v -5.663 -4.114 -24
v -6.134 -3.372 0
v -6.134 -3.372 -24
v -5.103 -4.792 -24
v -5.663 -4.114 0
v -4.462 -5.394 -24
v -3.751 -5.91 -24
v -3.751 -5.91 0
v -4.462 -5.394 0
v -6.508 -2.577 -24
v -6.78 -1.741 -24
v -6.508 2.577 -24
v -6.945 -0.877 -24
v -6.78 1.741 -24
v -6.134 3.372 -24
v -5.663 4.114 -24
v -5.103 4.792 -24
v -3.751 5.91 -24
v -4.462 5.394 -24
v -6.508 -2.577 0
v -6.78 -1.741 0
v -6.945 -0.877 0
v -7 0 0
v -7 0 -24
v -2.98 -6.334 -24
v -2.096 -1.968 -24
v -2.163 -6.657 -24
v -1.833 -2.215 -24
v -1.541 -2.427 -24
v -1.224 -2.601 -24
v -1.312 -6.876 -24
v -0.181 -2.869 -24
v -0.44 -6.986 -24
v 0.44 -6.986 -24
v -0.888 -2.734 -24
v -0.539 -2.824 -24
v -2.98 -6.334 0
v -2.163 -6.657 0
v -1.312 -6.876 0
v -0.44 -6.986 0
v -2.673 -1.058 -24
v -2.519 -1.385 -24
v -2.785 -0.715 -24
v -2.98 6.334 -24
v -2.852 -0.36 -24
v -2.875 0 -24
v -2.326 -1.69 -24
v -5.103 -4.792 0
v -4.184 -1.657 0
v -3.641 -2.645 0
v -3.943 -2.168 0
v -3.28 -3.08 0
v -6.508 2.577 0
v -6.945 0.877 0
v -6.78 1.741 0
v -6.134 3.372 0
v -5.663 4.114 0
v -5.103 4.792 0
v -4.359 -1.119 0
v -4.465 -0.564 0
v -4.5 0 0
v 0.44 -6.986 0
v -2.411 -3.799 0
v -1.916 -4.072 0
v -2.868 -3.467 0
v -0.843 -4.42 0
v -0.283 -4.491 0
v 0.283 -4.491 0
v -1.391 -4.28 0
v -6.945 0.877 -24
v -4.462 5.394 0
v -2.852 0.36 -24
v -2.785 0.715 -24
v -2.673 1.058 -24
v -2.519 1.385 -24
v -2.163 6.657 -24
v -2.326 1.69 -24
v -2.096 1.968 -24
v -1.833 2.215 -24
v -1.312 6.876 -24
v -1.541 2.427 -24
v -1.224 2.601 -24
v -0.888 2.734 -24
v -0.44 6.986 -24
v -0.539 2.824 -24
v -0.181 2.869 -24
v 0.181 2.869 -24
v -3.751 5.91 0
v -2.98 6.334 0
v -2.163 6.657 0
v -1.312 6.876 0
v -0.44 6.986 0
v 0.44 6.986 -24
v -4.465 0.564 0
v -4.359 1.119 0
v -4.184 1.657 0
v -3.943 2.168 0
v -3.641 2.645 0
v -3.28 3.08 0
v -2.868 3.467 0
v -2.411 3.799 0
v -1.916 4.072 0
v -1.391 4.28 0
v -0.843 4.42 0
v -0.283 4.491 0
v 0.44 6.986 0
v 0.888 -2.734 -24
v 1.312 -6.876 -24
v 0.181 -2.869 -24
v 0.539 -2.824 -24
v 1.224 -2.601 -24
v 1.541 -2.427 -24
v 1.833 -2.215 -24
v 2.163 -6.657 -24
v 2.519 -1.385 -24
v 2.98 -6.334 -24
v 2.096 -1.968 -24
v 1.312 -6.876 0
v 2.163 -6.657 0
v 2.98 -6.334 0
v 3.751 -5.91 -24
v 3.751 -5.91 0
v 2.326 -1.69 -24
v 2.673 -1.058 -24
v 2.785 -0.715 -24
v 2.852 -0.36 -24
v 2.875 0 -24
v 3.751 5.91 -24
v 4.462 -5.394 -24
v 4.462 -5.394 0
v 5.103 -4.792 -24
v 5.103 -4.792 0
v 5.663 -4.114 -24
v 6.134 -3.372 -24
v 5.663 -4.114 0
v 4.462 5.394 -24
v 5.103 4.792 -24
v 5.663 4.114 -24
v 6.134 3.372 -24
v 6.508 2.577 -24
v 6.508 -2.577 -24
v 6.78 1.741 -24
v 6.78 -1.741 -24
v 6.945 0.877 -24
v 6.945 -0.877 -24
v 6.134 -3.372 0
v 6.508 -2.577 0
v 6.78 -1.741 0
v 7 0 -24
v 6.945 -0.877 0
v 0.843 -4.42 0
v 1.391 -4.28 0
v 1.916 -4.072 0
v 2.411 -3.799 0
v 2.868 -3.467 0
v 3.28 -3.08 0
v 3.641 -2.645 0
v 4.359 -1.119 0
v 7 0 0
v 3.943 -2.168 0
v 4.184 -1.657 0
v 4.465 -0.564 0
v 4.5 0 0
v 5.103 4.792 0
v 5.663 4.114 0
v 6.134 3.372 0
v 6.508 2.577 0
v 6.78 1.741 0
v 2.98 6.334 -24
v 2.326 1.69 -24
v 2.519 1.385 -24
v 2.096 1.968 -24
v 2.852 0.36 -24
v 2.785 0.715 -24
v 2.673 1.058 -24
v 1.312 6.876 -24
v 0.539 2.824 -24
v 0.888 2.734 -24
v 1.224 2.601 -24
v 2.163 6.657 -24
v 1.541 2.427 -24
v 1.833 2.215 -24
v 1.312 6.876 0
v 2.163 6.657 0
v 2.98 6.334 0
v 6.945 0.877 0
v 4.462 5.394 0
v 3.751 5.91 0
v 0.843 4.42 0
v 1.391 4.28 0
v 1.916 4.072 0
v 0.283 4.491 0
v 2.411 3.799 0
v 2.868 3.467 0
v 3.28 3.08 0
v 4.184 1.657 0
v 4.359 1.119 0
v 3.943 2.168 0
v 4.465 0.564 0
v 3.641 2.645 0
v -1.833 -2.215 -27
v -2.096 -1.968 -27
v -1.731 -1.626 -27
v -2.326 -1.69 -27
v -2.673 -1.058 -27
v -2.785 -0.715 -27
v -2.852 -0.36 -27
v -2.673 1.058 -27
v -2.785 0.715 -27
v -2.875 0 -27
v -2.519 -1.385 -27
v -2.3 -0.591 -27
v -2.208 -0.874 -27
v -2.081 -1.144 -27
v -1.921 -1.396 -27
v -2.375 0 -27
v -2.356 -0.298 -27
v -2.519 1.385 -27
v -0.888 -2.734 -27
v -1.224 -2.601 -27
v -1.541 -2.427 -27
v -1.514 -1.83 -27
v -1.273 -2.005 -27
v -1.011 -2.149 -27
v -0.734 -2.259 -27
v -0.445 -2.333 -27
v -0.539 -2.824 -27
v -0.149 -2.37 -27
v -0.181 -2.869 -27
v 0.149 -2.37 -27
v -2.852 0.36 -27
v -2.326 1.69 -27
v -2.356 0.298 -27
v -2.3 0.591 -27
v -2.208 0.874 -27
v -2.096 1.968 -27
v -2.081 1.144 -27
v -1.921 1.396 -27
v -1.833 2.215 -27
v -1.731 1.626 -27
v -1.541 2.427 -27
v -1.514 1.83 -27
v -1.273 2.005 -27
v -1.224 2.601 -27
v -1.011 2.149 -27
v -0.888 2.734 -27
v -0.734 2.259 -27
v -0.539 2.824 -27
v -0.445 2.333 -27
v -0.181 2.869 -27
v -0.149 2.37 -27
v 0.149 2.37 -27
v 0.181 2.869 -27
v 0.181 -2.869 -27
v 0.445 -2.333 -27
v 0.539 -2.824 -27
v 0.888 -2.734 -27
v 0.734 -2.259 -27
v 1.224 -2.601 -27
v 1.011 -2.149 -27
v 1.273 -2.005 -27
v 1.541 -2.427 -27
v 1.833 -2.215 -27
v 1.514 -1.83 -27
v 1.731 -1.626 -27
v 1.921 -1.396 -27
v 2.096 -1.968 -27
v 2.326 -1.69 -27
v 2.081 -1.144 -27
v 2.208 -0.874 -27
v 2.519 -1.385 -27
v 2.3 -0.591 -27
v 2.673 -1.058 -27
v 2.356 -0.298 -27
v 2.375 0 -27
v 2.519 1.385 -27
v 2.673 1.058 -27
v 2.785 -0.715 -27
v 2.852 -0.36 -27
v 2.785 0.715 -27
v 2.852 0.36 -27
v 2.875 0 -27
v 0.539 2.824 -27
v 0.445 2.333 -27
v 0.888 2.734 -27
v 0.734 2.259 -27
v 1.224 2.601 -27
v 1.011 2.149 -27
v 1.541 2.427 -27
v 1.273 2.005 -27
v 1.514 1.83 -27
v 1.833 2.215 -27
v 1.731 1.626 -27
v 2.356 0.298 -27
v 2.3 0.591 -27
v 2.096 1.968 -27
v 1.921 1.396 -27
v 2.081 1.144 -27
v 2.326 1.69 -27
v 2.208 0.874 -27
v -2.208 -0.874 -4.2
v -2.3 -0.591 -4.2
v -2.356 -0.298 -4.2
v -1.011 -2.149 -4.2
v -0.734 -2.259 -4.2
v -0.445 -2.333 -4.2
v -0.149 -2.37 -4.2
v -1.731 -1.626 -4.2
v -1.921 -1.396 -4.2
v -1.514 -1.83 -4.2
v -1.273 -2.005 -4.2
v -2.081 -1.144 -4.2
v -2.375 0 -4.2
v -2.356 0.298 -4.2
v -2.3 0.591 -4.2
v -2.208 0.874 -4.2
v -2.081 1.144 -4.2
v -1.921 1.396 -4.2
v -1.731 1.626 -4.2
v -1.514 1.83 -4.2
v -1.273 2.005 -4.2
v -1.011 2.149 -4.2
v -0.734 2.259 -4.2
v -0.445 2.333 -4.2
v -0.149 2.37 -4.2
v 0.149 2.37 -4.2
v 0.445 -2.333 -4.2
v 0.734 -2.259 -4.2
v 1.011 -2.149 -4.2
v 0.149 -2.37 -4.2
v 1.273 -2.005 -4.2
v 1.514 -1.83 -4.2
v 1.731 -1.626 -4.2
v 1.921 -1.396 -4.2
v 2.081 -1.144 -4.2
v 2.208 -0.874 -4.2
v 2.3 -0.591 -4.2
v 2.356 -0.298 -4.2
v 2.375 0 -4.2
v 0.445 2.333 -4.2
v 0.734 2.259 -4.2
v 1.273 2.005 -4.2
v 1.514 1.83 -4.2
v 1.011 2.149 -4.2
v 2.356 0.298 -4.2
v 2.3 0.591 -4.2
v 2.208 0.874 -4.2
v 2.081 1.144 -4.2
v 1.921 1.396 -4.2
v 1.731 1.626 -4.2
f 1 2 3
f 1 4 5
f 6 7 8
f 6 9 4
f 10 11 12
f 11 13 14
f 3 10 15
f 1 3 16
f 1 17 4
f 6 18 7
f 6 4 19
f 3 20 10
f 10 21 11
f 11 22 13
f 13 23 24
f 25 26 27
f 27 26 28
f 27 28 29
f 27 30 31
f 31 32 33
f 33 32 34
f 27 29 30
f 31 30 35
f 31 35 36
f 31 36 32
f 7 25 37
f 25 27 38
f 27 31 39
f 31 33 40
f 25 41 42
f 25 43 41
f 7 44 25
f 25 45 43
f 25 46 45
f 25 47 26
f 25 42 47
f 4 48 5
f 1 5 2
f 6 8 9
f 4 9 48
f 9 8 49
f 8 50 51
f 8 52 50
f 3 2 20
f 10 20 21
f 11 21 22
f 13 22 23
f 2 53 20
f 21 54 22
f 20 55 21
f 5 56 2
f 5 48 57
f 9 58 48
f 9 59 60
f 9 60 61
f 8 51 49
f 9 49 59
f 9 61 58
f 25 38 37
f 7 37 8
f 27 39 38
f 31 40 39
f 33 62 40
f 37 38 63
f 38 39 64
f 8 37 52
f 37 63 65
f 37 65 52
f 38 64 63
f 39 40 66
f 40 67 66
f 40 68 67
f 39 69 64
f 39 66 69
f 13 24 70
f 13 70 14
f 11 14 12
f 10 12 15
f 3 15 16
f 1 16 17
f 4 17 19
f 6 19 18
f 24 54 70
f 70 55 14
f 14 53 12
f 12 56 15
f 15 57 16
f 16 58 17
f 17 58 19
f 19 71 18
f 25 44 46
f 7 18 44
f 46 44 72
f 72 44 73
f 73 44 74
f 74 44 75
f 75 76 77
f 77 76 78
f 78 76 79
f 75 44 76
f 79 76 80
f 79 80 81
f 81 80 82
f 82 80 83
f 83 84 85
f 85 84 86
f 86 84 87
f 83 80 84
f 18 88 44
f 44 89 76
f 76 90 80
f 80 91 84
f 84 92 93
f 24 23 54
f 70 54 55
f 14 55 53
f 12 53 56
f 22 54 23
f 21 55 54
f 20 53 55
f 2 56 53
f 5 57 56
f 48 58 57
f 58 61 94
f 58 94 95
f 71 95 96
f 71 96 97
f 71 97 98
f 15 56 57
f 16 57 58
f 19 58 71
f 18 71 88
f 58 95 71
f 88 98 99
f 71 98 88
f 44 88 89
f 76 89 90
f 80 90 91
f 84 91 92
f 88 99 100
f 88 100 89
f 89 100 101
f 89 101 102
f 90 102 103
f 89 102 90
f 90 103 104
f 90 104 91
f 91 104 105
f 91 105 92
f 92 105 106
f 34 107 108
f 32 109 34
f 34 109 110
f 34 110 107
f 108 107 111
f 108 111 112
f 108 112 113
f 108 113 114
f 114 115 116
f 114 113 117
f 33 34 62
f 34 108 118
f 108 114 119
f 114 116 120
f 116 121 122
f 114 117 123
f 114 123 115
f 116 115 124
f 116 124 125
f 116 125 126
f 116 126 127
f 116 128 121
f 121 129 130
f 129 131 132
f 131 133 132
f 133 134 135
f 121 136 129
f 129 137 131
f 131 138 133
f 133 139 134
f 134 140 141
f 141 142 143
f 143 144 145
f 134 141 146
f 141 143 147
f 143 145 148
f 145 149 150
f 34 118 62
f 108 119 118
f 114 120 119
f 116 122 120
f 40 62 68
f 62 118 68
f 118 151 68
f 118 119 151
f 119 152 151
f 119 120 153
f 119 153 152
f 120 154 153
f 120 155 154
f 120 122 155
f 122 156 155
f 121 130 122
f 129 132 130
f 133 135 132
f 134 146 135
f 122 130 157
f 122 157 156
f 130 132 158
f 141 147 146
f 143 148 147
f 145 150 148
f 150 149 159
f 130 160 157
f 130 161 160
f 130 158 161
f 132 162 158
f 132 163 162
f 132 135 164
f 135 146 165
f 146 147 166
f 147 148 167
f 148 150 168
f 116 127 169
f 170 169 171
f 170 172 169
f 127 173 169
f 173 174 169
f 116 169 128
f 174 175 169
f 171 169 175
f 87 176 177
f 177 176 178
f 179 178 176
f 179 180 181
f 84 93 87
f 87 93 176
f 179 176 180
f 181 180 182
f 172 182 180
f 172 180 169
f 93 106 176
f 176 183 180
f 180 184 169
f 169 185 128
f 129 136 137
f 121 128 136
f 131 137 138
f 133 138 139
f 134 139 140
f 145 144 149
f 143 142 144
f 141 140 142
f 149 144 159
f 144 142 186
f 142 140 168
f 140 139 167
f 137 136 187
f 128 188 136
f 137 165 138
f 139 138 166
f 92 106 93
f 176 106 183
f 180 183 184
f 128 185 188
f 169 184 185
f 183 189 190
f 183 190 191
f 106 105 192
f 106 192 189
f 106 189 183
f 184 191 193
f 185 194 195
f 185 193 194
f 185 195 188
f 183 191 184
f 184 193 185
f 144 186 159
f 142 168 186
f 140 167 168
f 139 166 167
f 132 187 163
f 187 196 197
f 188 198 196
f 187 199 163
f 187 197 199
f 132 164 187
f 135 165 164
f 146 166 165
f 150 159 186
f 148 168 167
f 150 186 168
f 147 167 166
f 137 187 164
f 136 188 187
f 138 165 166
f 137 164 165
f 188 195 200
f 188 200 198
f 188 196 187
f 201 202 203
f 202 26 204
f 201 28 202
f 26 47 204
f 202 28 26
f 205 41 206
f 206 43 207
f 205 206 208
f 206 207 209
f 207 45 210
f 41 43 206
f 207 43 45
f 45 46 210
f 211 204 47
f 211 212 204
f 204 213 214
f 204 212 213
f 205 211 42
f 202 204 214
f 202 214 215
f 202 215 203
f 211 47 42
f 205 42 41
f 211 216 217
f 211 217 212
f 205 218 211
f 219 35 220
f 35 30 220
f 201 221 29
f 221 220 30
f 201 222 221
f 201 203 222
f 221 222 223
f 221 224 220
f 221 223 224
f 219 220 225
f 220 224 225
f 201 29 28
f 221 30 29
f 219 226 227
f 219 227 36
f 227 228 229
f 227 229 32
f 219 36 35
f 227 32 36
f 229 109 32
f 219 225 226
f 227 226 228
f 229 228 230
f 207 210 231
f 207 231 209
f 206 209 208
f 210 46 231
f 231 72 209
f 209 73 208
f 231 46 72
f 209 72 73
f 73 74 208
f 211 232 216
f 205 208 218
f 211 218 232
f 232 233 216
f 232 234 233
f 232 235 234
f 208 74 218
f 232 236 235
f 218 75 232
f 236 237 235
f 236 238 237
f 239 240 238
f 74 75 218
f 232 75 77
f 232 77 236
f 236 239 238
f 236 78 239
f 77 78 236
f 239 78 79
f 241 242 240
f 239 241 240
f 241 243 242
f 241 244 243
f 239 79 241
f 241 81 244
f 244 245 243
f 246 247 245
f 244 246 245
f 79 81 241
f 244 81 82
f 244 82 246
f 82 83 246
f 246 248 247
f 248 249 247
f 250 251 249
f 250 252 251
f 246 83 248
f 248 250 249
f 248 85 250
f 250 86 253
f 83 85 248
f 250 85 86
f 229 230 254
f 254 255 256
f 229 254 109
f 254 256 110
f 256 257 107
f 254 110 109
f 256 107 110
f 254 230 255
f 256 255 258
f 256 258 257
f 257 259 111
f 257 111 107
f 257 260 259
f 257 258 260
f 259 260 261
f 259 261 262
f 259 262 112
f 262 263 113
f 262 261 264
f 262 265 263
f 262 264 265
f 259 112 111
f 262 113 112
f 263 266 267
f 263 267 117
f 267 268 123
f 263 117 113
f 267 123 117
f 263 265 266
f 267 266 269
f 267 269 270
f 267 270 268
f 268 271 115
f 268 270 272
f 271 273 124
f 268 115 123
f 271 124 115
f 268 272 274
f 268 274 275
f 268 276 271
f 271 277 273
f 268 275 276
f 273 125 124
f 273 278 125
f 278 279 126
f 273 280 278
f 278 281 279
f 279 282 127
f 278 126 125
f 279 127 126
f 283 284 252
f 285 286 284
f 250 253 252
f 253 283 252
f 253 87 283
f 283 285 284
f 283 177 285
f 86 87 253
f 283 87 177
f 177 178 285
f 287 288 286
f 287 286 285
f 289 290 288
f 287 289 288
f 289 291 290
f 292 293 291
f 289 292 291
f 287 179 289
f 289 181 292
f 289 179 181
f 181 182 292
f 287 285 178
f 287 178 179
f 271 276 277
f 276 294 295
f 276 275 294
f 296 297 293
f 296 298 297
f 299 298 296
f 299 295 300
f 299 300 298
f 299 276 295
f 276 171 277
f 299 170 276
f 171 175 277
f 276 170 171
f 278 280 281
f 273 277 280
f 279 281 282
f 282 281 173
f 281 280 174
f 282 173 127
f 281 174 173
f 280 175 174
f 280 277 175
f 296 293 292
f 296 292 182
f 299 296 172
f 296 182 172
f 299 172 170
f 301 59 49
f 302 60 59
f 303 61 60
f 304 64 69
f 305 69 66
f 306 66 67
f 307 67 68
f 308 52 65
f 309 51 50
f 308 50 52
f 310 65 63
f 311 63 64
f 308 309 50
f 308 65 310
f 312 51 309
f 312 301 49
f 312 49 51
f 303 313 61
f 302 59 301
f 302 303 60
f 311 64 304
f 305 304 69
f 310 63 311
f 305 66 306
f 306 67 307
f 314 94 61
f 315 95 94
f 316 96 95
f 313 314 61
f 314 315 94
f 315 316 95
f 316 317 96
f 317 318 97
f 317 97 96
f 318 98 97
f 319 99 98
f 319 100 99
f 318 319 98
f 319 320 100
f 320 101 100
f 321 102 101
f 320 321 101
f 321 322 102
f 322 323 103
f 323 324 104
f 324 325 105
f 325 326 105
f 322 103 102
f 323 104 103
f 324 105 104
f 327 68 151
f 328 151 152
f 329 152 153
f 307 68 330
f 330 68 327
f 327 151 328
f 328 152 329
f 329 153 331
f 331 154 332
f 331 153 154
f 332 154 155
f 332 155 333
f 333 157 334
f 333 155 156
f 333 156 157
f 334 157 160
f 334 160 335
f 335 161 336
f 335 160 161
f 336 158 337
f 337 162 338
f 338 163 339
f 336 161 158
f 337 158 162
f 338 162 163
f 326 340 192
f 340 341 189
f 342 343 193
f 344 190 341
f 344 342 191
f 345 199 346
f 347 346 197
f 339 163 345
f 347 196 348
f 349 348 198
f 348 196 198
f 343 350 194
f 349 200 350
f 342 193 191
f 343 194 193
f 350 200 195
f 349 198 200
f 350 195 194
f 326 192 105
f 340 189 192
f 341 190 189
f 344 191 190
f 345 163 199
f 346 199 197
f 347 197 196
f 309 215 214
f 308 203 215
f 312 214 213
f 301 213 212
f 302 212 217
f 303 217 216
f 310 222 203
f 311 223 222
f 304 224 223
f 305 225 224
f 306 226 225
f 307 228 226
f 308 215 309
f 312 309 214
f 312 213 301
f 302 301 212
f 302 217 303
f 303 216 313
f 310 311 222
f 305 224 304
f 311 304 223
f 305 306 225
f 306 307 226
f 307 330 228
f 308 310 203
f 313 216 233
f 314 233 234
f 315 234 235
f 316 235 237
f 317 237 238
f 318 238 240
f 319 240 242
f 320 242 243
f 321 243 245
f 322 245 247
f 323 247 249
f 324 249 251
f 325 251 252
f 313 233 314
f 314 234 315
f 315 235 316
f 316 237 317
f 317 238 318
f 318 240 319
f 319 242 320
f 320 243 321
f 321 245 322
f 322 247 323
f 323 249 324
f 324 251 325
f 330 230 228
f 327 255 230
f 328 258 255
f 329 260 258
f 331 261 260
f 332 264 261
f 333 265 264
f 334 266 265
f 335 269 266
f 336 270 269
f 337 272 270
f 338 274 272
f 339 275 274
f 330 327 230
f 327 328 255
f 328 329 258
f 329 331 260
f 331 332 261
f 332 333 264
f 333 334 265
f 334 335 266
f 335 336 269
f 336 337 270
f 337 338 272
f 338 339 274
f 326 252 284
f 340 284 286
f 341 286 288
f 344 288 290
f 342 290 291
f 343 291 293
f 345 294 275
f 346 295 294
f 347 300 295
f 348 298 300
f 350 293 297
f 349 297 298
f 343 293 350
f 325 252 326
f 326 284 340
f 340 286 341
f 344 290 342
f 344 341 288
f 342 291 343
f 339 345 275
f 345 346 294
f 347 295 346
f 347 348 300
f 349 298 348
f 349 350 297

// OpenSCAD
$fn = 50;


difference() {
	union() {
		translate(v = [0, 0, -24.0000000000]) {
			cylinder(h = 24, r = 7.0000000000);
		}
		#translate(v = [0, 0, -27.0000000000]) {
			cylinder(h = 27, r = 2.8750000000);
		}
	}
	union() {
		translate(v = [0, 0, 0]) {
			rotate(a = [0, 0, 0]) {
				difference() {
					union() {
						translate(v = [0, 0, -27.0000000000]) {
							cylinder(h = 27, r = 2.2500000000);
						}
						translate(v = [0, 0, -4.2000000000]) {
							cylinder(h = 4.2000000000, r1 = 2.3750000000, r2 = 4.5000000000);
						}
						translate(v = [0, 0, -27.0000000000]) {
							cylinder(h = 27, r = 2.3750000000);
						}
						translate(v = [0, 0, -27.0000000000]) {
							cylinder(h = 27, r = 2.2500000000);
						}
					}
					union();
				}
			}
		}
	}
}
